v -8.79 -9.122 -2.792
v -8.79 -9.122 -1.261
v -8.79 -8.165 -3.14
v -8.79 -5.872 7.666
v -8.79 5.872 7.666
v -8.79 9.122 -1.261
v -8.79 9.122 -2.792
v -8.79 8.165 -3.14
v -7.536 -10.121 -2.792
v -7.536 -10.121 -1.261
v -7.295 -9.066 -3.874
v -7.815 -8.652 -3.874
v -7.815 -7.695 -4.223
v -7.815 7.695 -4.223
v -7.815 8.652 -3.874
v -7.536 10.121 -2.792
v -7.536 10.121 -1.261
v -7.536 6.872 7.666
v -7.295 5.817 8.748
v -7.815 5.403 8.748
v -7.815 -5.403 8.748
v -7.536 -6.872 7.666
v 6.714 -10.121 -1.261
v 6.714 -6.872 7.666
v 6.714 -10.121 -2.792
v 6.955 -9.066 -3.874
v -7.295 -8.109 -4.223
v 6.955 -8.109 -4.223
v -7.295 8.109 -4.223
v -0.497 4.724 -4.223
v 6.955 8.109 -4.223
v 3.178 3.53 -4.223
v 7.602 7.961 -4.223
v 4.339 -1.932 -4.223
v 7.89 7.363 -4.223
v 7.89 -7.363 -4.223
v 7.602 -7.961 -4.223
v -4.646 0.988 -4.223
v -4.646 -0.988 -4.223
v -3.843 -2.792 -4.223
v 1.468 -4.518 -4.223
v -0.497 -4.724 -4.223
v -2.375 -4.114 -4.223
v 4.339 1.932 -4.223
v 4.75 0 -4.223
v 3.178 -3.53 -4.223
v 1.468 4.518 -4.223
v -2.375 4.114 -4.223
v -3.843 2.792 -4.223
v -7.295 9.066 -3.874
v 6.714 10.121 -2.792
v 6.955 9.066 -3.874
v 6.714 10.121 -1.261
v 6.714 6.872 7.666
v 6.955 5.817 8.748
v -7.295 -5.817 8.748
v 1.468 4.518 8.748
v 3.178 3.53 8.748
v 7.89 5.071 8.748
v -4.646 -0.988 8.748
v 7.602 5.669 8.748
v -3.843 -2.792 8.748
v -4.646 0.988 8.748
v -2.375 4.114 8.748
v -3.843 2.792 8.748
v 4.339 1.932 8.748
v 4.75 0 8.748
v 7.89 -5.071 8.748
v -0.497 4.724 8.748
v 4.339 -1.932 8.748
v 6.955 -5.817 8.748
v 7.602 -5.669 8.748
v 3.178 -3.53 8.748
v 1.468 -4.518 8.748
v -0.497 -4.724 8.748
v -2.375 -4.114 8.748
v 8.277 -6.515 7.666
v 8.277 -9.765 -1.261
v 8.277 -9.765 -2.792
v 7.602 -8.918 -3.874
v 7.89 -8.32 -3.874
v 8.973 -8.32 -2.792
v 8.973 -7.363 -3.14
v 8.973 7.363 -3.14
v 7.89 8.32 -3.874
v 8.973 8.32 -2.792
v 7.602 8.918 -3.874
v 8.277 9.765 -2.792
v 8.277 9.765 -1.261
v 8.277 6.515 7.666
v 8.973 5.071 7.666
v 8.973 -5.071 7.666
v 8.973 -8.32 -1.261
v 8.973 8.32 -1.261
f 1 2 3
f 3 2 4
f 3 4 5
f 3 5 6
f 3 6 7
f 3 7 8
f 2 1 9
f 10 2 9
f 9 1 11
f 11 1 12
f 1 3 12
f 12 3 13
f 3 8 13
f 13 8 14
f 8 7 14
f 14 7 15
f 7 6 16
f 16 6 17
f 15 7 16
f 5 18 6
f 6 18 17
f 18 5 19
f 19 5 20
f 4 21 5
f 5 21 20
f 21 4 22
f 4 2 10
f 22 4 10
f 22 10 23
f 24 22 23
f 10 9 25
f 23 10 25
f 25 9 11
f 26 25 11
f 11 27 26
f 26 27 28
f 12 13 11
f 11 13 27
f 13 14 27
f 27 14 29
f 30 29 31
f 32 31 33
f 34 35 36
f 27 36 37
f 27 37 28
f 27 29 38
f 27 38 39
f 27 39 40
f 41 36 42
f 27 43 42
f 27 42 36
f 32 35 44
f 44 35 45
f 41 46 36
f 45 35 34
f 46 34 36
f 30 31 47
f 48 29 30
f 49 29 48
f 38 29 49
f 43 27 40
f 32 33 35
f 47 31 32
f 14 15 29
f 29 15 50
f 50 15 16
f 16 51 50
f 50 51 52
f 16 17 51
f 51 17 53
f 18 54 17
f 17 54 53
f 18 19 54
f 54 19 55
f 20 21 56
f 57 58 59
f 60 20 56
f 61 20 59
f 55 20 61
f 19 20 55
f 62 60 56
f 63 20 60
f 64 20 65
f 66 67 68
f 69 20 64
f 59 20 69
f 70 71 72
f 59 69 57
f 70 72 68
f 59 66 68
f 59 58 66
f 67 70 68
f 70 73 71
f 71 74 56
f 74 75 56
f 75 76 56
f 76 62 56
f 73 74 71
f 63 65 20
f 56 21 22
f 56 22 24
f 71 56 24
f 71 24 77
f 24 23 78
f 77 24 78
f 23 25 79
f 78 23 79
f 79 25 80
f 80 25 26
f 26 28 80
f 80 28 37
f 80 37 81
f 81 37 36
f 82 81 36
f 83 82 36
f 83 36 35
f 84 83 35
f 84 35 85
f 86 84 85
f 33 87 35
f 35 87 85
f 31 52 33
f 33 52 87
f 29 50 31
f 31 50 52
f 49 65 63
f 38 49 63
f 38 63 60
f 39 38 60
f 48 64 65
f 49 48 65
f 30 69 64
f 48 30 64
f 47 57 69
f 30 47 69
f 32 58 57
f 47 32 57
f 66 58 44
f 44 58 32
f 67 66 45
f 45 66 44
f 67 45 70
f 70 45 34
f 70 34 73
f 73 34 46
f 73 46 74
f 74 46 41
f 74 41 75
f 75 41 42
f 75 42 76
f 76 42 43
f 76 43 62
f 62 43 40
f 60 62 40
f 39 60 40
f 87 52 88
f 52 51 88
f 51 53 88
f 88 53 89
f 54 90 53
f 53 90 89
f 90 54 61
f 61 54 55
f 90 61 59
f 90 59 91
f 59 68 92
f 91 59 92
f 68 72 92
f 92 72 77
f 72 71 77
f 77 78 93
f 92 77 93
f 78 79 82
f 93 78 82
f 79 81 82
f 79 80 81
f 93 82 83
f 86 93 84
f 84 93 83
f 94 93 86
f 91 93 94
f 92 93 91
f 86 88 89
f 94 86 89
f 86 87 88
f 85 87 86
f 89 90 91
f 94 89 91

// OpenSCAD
RodDiameter = 9.5;


difference()
{
	minkowski()
	{
		hull()
		{
			difference()
			{
				union()
				{
					rotate(a=20, v=[1,0,0]) translate ([0,RodDiameter/2,0]) cube([RodDiameter*1.5,RodDiameter/2,RodDiameter], center=true);
					rotate(a=-20, v=[1,0,0]) translate ([0,-RodDiameter/2,0]) cube([RodDiameter*1.5,RodDiameter/2,RodDiameter], center=true);
				}
				translate([0,0,-RodDiameter*1.25]) cube(RodDiameter*2, RodDiameter*2, RodDiameter*2, center=true);
			}
	
		}
	 sphere(r=2);
	}
cylinder (r=RodDiameter/2, h = 100, center=true);
}
